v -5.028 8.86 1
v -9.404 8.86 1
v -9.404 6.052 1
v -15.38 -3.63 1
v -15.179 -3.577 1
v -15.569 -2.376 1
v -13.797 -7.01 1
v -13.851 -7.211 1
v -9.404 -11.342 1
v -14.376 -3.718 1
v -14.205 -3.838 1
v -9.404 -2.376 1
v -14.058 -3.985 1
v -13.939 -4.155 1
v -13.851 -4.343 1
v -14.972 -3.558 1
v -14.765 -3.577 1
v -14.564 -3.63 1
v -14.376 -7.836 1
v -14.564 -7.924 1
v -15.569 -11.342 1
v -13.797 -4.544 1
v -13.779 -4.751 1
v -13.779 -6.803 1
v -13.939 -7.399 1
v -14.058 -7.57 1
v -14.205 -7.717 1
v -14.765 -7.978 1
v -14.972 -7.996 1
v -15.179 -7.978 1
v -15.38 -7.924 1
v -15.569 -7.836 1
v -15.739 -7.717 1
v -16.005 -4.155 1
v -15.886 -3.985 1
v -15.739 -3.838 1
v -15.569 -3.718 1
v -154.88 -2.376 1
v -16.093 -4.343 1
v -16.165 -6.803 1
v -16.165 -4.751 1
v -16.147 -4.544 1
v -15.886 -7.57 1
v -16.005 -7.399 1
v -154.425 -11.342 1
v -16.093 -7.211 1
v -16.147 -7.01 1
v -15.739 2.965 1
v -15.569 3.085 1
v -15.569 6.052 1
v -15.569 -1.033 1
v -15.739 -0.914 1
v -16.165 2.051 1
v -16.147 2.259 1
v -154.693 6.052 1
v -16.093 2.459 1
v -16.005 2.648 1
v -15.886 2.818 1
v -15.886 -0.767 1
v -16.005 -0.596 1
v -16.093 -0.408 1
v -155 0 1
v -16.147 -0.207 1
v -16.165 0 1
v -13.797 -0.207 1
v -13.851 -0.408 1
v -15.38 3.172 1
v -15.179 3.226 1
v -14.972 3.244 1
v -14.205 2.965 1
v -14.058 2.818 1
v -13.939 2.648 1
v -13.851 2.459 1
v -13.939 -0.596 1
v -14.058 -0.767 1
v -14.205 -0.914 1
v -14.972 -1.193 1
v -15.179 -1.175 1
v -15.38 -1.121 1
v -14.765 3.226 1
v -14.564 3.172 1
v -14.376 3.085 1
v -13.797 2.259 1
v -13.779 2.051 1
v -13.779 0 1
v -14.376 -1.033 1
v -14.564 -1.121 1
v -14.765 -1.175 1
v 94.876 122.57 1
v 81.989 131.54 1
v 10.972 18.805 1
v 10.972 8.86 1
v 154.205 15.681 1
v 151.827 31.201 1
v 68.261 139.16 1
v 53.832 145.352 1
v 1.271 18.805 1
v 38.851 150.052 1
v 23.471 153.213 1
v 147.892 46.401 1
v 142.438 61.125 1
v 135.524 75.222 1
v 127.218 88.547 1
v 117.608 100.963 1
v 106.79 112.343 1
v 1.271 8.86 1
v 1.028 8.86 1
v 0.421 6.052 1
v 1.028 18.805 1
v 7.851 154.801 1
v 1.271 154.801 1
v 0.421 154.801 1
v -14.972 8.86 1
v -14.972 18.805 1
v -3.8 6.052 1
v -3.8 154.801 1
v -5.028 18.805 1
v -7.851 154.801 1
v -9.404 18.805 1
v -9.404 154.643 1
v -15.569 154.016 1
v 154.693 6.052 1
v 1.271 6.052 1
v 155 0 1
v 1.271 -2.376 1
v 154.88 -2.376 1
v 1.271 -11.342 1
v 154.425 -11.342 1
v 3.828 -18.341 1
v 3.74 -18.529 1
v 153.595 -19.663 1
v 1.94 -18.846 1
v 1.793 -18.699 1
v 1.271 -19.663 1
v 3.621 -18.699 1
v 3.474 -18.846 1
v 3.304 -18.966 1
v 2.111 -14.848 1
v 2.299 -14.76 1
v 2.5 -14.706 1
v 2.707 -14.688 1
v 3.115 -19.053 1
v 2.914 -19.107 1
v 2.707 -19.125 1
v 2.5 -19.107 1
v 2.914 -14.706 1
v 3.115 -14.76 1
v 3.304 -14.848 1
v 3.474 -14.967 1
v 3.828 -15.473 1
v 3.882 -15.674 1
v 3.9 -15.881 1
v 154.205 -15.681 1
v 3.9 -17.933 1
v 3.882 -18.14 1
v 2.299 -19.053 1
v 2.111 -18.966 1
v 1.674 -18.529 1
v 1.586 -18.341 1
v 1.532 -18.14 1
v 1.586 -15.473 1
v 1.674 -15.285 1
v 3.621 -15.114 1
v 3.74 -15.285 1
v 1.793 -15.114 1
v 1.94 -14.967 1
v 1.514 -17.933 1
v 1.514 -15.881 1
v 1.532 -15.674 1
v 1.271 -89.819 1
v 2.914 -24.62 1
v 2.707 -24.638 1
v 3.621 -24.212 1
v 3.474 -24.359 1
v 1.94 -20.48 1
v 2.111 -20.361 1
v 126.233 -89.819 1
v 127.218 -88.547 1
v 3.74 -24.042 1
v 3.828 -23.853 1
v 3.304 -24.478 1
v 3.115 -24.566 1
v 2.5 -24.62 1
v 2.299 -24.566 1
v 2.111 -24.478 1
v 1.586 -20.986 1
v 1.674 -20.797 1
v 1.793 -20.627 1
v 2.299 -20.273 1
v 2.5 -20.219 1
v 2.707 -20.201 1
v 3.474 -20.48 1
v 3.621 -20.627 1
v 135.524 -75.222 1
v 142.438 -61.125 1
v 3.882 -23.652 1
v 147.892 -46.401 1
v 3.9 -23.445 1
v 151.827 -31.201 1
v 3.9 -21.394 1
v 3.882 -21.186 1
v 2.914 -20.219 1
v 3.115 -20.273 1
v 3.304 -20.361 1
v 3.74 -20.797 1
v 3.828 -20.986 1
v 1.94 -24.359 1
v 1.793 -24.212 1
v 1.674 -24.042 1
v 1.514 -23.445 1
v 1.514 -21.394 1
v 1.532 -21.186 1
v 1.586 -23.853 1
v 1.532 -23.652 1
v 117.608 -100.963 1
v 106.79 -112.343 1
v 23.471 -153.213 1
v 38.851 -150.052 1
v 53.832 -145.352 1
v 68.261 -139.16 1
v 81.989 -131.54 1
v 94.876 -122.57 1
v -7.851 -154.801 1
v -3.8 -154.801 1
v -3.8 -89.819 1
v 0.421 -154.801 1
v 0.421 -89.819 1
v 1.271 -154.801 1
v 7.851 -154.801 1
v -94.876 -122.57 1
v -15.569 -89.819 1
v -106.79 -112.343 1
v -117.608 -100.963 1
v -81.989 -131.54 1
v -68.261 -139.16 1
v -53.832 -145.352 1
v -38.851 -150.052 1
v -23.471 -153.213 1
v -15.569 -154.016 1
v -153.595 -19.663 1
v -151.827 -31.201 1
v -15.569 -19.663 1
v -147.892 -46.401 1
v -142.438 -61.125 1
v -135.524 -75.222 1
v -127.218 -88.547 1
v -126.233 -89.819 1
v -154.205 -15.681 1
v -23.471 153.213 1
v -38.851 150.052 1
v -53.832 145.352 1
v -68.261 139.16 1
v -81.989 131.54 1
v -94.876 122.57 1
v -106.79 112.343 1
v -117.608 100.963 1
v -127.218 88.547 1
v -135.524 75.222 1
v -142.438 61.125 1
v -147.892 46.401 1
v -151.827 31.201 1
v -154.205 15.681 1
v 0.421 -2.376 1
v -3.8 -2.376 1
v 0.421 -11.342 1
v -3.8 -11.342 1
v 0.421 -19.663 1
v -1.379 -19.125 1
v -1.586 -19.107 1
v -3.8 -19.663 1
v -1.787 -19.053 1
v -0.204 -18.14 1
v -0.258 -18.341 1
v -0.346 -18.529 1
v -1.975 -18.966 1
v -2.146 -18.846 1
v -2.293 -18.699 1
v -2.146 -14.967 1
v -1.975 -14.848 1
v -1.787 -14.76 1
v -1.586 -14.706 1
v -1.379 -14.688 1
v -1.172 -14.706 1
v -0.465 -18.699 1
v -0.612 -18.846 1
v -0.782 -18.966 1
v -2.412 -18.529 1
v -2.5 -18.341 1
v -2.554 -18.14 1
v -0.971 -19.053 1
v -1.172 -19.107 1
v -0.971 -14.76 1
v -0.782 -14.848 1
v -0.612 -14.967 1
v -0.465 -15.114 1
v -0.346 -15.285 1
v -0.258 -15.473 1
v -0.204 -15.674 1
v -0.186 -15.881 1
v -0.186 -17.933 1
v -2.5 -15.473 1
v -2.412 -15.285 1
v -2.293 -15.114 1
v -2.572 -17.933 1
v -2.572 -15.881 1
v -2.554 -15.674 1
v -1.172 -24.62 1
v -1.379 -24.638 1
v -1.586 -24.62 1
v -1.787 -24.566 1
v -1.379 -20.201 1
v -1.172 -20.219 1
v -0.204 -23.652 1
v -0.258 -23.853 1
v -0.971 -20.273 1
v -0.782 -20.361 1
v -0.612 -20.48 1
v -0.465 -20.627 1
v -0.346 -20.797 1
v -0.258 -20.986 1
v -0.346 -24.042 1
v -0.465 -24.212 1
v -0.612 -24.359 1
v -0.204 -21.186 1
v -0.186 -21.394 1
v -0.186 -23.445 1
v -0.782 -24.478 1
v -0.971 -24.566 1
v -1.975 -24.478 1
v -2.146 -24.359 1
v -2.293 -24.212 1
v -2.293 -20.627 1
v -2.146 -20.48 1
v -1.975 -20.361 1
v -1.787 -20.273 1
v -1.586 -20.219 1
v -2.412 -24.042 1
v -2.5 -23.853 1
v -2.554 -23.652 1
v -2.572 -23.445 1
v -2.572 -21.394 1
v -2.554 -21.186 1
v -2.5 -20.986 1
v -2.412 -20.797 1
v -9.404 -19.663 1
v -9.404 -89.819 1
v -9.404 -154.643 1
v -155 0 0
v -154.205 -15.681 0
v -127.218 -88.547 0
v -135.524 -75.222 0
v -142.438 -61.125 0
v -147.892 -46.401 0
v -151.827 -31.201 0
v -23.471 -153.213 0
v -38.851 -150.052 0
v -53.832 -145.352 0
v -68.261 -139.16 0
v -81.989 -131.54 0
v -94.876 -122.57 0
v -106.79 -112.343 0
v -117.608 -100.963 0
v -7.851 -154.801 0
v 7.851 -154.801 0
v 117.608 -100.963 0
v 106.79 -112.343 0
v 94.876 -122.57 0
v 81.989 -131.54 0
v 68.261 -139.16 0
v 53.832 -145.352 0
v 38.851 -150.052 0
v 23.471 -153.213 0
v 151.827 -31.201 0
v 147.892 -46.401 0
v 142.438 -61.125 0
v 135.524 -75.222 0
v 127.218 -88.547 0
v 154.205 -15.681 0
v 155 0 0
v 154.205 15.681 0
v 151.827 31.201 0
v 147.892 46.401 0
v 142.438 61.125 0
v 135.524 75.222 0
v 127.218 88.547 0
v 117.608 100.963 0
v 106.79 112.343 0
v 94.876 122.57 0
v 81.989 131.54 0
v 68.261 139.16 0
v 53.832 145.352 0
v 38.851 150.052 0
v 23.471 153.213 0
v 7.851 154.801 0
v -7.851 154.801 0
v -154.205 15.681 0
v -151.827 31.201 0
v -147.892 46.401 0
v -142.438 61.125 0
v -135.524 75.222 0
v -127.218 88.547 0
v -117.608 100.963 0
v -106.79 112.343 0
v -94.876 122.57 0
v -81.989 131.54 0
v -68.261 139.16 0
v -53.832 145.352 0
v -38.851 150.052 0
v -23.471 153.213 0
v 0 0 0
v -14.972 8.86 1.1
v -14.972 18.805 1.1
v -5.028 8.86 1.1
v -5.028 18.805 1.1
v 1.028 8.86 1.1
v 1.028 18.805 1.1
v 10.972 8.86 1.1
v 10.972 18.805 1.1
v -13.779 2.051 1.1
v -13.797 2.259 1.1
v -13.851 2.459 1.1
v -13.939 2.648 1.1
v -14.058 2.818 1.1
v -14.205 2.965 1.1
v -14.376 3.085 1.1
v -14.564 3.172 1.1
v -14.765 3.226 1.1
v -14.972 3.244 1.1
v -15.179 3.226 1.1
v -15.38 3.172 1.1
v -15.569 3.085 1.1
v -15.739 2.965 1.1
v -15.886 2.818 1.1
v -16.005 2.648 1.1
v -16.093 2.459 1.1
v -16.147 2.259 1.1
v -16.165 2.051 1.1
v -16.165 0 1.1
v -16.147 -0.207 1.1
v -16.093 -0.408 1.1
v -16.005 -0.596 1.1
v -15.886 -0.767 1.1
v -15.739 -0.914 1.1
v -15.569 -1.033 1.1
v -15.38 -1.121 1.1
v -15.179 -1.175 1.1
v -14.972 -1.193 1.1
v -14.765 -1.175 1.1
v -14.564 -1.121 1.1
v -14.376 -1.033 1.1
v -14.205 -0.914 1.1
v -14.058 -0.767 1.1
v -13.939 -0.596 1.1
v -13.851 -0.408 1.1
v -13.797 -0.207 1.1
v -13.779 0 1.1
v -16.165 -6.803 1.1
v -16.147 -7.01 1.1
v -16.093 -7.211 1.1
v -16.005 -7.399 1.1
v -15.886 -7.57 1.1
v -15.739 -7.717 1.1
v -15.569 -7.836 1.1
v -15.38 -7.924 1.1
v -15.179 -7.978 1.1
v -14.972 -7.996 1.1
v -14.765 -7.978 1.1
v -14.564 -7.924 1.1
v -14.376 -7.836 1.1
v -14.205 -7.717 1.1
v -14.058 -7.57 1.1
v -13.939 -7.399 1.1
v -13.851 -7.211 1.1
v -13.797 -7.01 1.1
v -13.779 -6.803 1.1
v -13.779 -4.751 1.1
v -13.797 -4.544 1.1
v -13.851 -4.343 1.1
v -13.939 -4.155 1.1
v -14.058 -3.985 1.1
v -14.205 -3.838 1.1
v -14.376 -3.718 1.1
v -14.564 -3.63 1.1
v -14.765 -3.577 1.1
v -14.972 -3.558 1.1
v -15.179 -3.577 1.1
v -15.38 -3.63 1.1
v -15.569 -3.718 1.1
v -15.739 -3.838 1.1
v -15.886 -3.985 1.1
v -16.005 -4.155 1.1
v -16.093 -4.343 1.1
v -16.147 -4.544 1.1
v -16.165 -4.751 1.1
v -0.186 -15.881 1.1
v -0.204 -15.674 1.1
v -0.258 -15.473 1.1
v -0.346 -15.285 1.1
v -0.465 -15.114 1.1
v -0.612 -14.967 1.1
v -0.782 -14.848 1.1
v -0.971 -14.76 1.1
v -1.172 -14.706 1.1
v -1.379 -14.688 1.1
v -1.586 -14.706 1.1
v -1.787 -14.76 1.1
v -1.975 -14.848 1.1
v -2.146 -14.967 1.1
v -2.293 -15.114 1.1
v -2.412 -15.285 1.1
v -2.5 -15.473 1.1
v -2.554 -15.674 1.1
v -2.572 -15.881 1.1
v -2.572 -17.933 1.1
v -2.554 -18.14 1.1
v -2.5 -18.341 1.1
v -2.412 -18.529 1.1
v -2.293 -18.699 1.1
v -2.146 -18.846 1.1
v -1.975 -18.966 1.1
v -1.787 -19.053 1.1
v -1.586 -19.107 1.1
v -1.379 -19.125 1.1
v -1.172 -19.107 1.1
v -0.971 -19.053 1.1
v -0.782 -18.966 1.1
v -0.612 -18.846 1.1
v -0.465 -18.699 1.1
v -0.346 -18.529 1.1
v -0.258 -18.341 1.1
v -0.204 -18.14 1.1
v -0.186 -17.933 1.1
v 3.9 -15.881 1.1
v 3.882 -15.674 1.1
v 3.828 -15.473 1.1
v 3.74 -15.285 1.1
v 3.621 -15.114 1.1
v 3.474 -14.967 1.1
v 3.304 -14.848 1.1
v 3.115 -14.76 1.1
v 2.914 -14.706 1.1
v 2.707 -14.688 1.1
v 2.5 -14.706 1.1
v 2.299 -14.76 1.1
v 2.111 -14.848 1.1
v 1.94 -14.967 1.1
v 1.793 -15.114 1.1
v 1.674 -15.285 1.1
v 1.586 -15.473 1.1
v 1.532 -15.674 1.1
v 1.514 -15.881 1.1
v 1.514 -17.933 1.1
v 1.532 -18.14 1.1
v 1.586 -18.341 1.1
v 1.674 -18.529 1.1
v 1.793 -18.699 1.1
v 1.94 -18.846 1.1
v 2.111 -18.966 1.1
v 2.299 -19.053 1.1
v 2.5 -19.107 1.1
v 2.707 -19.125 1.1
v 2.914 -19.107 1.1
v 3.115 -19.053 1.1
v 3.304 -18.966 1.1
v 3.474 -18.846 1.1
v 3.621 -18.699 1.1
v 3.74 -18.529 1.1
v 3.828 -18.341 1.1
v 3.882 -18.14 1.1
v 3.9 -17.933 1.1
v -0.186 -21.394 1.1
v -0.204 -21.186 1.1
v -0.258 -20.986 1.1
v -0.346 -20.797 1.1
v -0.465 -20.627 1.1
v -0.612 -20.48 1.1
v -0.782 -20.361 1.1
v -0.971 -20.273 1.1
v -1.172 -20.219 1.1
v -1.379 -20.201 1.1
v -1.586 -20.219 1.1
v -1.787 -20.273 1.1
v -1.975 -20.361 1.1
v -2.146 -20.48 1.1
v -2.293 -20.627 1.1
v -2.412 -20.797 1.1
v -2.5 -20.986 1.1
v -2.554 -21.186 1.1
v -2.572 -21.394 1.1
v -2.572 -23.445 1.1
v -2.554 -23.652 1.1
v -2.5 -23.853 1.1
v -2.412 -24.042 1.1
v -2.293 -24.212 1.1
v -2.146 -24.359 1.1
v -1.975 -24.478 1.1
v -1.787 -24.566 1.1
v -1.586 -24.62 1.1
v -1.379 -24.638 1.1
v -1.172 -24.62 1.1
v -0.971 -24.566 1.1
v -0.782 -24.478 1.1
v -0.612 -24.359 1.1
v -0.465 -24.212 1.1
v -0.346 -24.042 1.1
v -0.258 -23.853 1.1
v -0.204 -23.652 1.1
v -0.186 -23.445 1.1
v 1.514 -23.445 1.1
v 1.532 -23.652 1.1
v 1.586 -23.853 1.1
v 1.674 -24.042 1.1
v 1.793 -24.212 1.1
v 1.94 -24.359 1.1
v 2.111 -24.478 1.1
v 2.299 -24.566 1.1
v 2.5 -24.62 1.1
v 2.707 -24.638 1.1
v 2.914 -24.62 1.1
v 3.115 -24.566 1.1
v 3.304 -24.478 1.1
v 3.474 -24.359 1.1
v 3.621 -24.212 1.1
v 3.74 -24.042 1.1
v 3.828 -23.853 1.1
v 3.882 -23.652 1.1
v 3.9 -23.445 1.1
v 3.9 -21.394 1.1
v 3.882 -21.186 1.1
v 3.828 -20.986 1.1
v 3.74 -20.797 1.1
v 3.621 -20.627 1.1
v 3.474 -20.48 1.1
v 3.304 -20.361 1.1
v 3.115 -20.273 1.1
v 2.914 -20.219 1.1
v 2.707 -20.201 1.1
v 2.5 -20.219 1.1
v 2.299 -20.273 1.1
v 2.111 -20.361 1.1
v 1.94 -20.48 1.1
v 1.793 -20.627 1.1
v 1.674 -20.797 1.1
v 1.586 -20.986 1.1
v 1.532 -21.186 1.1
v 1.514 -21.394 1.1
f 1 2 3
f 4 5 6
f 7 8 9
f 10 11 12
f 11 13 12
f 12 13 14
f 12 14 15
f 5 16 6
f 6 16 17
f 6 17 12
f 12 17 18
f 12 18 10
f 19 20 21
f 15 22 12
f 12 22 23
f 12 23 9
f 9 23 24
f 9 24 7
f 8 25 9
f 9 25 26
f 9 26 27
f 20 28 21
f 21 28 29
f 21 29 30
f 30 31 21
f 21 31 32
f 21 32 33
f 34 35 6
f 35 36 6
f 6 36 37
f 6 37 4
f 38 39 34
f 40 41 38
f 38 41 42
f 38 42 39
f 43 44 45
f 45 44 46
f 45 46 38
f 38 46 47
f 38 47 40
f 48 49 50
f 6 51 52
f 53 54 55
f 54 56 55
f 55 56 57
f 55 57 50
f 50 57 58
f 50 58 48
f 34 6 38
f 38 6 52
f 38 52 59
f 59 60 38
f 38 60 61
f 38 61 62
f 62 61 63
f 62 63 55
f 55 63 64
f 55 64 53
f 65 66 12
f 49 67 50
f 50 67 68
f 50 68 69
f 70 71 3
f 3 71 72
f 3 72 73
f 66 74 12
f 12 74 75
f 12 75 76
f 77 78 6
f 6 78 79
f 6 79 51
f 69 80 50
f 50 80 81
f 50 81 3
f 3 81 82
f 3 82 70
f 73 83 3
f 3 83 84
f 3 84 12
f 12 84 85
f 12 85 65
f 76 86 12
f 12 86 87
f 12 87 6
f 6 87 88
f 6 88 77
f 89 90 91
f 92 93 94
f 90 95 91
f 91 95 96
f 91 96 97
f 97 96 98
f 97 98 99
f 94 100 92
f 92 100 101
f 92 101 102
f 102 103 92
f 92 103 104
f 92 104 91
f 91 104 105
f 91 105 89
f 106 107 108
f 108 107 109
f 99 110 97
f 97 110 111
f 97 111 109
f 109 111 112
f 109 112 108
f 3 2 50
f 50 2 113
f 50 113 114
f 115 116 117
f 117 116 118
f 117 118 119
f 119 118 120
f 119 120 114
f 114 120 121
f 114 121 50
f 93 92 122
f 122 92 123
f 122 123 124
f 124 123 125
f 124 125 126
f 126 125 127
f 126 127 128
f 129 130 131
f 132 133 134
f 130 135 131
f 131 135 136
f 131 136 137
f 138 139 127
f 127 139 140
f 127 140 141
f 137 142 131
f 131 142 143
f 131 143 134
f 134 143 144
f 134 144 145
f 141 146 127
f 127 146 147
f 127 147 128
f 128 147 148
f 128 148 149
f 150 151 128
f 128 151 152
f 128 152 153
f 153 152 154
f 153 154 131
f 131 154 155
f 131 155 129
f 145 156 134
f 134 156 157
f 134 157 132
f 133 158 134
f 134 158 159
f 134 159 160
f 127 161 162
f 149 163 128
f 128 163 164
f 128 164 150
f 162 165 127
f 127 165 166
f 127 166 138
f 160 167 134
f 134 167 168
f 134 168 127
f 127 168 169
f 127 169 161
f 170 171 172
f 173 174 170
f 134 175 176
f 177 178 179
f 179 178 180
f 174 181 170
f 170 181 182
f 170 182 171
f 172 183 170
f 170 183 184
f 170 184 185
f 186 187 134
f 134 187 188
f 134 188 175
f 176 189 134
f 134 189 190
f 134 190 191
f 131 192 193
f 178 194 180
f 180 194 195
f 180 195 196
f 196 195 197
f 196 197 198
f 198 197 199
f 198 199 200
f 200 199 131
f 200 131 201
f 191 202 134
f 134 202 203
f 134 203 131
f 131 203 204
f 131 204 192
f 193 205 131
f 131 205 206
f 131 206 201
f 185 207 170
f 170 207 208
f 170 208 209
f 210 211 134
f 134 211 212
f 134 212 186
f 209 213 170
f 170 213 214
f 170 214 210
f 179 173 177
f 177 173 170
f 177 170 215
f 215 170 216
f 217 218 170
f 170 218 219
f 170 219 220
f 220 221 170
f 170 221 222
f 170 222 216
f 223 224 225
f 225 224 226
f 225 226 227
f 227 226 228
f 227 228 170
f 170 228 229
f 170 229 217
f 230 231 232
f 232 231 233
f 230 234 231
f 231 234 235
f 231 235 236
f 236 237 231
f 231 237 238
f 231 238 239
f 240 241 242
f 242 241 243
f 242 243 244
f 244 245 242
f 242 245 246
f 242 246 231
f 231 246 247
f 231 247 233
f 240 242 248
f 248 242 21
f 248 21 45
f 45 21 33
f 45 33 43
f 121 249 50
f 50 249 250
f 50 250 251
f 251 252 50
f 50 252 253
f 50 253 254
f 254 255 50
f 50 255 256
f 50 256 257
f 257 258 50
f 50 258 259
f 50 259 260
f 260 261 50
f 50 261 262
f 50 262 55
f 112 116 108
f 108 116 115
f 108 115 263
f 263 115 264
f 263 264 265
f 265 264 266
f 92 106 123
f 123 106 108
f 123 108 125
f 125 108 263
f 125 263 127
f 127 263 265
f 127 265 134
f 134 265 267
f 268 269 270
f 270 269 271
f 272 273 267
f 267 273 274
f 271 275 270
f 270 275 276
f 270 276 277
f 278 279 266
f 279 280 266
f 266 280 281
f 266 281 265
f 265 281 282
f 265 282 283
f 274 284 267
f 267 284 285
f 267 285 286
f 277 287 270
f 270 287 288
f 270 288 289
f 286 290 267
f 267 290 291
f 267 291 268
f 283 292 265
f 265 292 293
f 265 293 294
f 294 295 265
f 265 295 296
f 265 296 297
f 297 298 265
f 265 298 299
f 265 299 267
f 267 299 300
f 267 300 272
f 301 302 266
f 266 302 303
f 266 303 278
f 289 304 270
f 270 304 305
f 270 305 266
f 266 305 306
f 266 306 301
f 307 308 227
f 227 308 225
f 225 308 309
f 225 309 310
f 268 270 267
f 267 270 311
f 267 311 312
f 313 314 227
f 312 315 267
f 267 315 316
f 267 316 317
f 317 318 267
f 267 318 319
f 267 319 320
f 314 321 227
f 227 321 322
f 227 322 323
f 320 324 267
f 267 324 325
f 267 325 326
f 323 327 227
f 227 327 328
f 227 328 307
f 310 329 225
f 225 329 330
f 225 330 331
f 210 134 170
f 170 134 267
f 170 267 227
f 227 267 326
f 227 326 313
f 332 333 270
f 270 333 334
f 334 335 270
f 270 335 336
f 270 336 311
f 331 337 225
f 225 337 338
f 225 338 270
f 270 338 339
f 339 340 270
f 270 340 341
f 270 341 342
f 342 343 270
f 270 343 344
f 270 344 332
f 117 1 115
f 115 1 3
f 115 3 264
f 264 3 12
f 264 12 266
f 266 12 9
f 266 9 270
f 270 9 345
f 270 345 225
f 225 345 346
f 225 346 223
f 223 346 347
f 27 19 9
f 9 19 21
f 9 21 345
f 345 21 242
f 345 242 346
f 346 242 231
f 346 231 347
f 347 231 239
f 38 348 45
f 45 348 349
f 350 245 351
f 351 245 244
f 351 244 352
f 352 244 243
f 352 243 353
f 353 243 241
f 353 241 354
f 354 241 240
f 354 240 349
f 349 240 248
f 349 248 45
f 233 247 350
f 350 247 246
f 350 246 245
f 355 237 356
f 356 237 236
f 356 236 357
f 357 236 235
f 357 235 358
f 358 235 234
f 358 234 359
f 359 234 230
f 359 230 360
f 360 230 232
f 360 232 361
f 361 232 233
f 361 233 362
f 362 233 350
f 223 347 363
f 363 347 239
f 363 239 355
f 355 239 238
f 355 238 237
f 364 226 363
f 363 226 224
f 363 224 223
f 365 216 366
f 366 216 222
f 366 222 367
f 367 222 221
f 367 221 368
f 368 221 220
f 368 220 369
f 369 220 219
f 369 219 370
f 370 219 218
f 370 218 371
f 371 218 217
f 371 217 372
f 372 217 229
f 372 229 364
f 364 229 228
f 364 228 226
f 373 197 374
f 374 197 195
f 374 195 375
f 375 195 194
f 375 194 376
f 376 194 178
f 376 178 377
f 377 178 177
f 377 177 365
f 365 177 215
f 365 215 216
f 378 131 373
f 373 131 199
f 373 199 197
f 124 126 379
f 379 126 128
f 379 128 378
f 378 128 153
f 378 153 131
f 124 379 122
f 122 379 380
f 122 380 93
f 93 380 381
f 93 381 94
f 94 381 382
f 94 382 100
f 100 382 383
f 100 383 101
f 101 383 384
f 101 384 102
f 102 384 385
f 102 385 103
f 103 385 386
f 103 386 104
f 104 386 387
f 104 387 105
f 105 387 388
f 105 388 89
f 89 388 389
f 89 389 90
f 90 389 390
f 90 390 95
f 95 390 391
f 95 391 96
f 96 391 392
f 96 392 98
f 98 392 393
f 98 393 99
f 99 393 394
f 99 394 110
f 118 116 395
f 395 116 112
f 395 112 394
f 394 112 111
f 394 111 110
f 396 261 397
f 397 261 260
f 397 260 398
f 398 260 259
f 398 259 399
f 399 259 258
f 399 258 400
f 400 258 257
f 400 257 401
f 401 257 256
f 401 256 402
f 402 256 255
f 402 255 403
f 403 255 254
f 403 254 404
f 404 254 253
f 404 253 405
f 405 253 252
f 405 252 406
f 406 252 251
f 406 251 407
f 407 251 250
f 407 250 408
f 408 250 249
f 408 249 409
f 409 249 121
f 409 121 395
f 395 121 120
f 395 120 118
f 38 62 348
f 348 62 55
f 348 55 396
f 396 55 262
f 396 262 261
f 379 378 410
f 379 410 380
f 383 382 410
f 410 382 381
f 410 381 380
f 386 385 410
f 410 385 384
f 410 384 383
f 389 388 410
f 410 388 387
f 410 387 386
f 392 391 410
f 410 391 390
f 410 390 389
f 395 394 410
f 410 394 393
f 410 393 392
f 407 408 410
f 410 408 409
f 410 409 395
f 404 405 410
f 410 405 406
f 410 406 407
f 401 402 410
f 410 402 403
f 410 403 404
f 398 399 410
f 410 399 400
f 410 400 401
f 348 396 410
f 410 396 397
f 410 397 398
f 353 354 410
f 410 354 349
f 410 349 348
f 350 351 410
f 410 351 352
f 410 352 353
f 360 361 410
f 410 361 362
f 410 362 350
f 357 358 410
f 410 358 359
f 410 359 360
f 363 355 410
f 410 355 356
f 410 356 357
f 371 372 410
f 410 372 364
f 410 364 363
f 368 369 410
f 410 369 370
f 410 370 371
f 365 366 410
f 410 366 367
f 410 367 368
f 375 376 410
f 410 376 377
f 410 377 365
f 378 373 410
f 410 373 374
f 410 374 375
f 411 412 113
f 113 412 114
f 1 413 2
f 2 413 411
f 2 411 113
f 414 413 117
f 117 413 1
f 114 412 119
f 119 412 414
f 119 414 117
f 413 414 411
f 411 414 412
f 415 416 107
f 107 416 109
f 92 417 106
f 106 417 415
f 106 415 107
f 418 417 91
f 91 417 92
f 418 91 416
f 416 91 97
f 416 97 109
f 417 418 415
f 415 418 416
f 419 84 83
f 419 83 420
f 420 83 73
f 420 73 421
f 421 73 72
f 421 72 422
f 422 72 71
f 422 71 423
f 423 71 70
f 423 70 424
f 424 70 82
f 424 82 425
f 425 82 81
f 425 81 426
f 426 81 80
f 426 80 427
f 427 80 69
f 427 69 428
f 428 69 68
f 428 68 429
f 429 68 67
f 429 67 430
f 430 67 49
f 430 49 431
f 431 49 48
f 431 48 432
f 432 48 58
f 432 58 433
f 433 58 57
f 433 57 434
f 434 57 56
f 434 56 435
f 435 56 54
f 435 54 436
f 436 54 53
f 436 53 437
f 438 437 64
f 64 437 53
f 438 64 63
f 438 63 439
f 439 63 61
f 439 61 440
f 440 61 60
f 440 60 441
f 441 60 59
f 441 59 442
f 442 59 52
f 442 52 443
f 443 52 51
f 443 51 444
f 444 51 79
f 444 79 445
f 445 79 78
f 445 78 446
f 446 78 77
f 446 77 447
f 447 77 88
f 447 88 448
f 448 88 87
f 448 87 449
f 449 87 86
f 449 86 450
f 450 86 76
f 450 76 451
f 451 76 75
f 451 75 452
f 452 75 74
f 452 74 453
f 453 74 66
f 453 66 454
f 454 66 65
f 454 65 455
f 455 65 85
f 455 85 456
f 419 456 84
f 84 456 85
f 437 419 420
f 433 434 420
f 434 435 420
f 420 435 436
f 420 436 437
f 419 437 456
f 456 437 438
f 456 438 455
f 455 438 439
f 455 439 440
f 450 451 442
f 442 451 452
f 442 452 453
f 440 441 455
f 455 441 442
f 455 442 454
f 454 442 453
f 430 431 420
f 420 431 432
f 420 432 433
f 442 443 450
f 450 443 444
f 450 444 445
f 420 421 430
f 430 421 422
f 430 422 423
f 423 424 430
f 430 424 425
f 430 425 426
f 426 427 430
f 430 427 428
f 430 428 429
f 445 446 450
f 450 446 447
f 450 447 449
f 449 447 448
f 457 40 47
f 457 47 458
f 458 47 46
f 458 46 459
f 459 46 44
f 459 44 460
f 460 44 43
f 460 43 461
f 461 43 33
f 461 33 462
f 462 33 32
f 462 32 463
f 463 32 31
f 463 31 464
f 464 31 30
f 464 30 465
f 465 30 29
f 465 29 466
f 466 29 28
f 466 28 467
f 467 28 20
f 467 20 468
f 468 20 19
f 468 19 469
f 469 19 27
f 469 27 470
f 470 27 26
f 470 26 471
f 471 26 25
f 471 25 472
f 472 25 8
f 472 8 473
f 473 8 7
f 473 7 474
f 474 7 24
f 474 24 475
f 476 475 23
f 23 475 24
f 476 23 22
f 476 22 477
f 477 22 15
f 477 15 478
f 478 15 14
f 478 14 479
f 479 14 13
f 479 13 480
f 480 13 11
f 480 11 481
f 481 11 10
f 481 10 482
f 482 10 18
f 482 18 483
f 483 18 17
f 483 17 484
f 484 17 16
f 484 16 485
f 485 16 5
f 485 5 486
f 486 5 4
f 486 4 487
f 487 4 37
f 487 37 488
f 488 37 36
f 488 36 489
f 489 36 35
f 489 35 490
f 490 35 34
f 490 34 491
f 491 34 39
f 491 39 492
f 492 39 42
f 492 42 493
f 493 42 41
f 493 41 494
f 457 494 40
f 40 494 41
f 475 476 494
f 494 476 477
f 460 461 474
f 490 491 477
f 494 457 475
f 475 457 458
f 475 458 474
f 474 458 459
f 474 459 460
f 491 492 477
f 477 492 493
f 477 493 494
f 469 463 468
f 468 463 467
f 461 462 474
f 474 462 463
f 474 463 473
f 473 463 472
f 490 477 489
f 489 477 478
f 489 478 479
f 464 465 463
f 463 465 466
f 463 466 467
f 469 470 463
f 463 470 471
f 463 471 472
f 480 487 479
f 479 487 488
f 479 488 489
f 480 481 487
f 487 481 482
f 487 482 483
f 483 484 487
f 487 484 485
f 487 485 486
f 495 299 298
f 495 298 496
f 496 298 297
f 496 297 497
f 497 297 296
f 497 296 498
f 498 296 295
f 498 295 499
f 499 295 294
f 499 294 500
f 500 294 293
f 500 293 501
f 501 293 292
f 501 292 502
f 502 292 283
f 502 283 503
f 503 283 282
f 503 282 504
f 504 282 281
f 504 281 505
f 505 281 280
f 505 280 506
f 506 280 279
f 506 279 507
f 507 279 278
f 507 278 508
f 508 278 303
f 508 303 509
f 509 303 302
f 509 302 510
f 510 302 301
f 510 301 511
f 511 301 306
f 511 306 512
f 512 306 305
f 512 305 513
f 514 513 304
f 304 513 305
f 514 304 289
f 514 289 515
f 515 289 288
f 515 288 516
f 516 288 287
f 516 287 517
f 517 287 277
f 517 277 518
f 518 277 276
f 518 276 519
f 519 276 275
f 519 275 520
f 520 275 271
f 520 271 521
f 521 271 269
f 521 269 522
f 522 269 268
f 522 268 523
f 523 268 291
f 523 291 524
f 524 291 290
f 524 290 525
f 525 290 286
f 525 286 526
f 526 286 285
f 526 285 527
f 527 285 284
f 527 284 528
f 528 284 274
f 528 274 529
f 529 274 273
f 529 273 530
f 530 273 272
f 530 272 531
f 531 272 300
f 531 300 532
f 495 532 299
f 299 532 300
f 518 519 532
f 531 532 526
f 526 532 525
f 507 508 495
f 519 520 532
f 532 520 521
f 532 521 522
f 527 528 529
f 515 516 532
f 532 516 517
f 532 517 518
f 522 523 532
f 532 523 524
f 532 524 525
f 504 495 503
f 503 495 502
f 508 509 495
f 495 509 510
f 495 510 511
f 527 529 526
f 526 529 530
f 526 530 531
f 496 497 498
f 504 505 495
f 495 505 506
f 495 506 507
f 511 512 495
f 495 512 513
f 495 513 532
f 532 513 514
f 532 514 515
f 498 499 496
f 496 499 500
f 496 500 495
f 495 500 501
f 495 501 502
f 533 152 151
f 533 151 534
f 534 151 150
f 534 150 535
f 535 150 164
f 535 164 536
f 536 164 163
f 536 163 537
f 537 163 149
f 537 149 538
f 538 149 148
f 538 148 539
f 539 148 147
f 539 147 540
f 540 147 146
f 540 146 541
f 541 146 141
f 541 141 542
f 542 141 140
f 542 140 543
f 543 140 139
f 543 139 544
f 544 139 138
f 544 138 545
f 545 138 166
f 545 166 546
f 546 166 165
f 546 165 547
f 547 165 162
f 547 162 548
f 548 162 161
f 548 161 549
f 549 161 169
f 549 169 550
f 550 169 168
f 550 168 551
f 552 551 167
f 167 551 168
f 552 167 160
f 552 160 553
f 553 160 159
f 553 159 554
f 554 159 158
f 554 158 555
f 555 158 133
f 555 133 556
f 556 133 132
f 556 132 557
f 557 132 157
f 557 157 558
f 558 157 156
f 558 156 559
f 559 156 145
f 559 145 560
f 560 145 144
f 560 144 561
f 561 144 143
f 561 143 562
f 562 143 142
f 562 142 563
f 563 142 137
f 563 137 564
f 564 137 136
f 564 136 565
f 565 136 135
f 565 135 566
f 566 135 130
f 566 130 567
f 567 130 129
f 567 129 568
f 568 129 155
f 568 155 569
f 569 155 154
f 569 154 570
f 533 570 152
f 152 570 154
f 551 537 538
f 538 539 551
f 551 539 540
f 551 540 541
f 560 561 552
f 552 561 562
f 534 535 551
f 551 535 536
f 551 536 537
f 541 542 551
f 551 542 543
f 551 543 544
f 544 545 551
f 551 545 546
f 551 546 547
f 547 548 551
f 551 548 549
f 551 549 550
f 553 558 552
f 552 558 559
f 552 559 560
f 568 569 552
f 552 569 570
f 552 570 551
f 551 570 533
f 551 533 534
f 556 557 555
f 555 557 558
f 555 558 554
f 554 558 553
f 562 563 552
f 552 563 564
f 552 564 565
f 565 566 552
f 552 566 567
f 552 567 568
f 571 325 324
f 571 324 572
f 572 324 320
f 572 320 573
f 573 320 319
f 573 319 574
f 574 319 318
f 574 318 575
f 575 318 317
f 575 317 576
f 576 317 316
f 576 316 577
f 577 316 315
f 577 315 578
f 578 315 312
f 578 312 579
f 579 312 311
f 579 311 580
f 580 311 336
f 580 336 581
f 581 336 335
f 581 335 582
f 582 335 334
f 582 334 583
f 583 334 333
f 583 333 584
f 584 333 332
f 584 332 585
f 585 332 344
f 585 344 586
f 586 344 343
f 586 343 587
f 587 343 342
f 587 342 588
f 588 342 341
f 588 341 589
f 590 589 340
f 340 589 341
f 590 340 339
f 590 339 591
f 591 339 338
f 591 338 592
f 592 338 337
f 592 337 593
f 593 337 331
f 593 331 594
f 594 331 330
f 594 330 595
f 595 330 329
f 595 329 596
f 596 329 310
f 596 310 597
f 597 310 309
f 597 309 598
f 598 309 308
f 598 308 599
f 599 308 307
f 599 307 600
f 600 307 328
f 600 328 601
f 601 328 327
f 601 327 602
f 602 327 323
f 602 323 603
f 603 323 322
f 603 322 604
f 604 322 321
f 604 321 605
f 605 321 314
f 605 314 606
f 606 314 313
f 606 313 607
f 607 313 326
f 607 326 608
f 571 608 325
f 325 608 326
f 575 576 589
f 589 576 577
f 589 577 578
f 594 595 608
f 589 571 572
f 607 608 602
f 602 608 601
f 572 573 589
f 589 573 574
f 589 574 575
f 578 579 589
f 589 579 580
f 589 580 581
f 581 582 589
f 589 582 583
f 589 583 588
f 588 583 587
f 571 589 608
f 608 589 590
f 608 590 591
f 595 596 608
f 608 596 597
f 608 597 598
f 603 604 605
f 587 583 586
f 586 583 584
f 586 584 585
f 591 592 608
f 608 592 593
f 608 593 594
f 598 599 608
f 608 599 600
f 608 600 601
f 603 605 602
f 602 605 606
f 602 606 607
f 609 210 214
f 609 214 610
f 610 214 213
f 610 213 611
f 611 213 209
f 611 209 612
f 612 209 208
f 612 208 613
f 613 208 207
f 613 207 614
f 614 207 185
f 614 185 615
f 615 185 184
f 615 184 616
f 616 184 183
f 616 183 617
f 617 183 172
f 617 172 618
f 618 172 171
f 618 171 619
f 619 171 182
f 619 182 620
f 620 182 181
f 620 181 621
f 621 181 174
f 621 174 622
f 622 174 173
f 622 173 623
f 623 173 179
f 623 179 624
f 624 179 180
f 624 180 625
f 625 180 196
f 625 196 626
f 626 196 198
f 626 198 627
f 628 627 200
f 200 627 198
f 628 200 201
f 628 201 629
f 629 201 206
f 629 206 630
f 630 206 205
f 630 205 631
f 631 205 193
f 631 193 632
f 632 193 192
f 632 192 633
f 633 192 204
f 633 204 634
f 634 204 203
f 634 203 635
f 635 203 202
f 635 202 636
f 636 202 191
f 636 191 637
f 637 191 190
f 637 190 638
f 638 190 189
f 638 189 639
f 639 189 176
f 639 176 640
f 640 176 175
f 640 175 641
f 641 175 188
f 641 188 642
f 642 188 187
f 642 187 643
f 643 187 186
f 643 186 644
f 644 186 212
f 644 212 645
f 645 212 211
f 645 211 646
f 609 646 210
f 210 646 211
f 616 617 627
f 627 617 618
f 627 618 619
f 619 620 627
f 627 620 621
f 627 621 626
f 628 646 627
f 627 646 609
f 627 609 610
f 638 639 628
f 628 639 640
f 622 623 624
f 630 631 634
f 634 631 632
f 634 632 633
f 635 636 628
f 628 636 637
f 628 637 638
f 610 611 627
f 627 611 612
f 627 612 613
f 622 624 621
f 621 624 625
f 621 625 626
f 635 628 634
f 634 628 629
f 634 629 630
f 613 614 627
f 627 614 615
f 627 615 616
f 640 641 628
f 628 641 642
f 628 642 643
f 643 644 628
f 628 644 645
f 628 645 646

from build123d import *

# Parameters (mm, degrees)
SKETCH1_R           = 155
BOSS_EXTRUDE1_DEPTH = 1
SKETCH2_W           = 9.944482202
SKETCH2_H           = 9.944482203
BOSS_EXTRUDE2_DEPTH = 0.1


with BuildPart() as part:
    # Sketch1 → Boss-Extrude1 (new body)
    with BuildSketch(Plane.XY):
        Circle(SKETCH1_R)
    extrude(amount=BOSS_EXTRUDE1_DEPTH)

    # Sketch2 → Boss-Extrude2 (add)
    with BuildSketch(Plane.XY.offset(1)):
        with Locations((-10, 13.832433297)):
            Rectangle(SKETCH2_W, SKETCH2_H)
        with Locations((6, 13.832433297)):
            Rectangle(SKETCH2_W, SKETCH2_H)
        with BuildLine():
            Line((-13.779336212, 2.051462451), (-13.779336212, 0))
            ThreePointArc((-13.779336212, 0), (-14.972241101, -1.19290489), (-16.165145991, 0))
            Line((-16.165145991, 0), (-16.165145991, 2.051462451))
            ThreePointArc((-16.165145991, 2.051462451), (-14.972241101, 3.244367341), (-13.779336212, 2.051462451))
        make_face()
        with BuildLine():
            Line((-16.165145991, -6.802865473), (-16.165145991, -4.751403022))
            ThreePointArc((-16.165145991, -4.751403022), (-14.972241101, -3.558498133), (-13.779336212, -4.751403022))
            Line((-13.779336212, -4.751403022), (-13.779336212, -6.802865473))
            ThreePointArc((-13.779336212, -6.802865473), (-14.972241101, -7.995770363), (-16.165145991, -6.802865473))
        make_face()
        with BuildLine():
            Line((-0.185839603, -15.881052977), (-0.185839603, -17.932515427))
            ThreePointArc((-0.185839603, -17.932515427), (-1.378744492, -19.125420317), (-2.571649382, -17.932515427))
            Line((-2.571649382, -17.932515427), (-2.571649382, -15.881052977))
            ThreePointArc((-2.571649382, -15.881052977), (-1.378744492, -14.688148087), (-0.185839603, -15.881052977))
        make_face()
        with BuildLine():
            Line((3.900067015, -15.881052977), (3.900067015, -17.932515427))
            ThreePointArc((3.900067015, -17.932515427), (2.707162125, -19.125420317), (1.514257236, -17.932515427))
            Line((1.514257236, -17.932515427), (1.514257236, -15.881052977))
            ThreePointArc((1.514257236, -15.881052977), (2.707162125, -14.688148087), (3.900067015, -15.881052977))
        make_face()
        with BuildLine():
            Line((-0.185839603, -21.393622173), (-0.185839603, -23.445084624))
            ThreePointArc((-0.185839603, -23.445084624), (-1.378744492, -24.637989514), (-2.571649382, -23.445084624))
            Line((-2.571649382, -23.445084624), (-2.571649382, -21.393622173))
            ThreePointArc((-2.571649382, -21.393622173), (-1.378744492, -20.200717283), (-0.185839603, -21.393622173))
        make_face()
        with BuildLine():
            Line((1.514257236, -23.445084624), (1.514257236, -21.393622173))
            ThreePointArc((1.514257236, -21.393622173), (2.707162125, -20.200717283), (3.900067015, -21.393622173))
            Line((3.900067015, -21.393622173), (3.900067015, -23.445084624))
            ThreePointArc((3.900067015, -23.445084624), (2.707162125, -24.637989514), (1.514257236, -23.445084624))
        make_face()
    extrude(amount=BOSS_EXTRUDE2_DEPTH)


solid = part.part
